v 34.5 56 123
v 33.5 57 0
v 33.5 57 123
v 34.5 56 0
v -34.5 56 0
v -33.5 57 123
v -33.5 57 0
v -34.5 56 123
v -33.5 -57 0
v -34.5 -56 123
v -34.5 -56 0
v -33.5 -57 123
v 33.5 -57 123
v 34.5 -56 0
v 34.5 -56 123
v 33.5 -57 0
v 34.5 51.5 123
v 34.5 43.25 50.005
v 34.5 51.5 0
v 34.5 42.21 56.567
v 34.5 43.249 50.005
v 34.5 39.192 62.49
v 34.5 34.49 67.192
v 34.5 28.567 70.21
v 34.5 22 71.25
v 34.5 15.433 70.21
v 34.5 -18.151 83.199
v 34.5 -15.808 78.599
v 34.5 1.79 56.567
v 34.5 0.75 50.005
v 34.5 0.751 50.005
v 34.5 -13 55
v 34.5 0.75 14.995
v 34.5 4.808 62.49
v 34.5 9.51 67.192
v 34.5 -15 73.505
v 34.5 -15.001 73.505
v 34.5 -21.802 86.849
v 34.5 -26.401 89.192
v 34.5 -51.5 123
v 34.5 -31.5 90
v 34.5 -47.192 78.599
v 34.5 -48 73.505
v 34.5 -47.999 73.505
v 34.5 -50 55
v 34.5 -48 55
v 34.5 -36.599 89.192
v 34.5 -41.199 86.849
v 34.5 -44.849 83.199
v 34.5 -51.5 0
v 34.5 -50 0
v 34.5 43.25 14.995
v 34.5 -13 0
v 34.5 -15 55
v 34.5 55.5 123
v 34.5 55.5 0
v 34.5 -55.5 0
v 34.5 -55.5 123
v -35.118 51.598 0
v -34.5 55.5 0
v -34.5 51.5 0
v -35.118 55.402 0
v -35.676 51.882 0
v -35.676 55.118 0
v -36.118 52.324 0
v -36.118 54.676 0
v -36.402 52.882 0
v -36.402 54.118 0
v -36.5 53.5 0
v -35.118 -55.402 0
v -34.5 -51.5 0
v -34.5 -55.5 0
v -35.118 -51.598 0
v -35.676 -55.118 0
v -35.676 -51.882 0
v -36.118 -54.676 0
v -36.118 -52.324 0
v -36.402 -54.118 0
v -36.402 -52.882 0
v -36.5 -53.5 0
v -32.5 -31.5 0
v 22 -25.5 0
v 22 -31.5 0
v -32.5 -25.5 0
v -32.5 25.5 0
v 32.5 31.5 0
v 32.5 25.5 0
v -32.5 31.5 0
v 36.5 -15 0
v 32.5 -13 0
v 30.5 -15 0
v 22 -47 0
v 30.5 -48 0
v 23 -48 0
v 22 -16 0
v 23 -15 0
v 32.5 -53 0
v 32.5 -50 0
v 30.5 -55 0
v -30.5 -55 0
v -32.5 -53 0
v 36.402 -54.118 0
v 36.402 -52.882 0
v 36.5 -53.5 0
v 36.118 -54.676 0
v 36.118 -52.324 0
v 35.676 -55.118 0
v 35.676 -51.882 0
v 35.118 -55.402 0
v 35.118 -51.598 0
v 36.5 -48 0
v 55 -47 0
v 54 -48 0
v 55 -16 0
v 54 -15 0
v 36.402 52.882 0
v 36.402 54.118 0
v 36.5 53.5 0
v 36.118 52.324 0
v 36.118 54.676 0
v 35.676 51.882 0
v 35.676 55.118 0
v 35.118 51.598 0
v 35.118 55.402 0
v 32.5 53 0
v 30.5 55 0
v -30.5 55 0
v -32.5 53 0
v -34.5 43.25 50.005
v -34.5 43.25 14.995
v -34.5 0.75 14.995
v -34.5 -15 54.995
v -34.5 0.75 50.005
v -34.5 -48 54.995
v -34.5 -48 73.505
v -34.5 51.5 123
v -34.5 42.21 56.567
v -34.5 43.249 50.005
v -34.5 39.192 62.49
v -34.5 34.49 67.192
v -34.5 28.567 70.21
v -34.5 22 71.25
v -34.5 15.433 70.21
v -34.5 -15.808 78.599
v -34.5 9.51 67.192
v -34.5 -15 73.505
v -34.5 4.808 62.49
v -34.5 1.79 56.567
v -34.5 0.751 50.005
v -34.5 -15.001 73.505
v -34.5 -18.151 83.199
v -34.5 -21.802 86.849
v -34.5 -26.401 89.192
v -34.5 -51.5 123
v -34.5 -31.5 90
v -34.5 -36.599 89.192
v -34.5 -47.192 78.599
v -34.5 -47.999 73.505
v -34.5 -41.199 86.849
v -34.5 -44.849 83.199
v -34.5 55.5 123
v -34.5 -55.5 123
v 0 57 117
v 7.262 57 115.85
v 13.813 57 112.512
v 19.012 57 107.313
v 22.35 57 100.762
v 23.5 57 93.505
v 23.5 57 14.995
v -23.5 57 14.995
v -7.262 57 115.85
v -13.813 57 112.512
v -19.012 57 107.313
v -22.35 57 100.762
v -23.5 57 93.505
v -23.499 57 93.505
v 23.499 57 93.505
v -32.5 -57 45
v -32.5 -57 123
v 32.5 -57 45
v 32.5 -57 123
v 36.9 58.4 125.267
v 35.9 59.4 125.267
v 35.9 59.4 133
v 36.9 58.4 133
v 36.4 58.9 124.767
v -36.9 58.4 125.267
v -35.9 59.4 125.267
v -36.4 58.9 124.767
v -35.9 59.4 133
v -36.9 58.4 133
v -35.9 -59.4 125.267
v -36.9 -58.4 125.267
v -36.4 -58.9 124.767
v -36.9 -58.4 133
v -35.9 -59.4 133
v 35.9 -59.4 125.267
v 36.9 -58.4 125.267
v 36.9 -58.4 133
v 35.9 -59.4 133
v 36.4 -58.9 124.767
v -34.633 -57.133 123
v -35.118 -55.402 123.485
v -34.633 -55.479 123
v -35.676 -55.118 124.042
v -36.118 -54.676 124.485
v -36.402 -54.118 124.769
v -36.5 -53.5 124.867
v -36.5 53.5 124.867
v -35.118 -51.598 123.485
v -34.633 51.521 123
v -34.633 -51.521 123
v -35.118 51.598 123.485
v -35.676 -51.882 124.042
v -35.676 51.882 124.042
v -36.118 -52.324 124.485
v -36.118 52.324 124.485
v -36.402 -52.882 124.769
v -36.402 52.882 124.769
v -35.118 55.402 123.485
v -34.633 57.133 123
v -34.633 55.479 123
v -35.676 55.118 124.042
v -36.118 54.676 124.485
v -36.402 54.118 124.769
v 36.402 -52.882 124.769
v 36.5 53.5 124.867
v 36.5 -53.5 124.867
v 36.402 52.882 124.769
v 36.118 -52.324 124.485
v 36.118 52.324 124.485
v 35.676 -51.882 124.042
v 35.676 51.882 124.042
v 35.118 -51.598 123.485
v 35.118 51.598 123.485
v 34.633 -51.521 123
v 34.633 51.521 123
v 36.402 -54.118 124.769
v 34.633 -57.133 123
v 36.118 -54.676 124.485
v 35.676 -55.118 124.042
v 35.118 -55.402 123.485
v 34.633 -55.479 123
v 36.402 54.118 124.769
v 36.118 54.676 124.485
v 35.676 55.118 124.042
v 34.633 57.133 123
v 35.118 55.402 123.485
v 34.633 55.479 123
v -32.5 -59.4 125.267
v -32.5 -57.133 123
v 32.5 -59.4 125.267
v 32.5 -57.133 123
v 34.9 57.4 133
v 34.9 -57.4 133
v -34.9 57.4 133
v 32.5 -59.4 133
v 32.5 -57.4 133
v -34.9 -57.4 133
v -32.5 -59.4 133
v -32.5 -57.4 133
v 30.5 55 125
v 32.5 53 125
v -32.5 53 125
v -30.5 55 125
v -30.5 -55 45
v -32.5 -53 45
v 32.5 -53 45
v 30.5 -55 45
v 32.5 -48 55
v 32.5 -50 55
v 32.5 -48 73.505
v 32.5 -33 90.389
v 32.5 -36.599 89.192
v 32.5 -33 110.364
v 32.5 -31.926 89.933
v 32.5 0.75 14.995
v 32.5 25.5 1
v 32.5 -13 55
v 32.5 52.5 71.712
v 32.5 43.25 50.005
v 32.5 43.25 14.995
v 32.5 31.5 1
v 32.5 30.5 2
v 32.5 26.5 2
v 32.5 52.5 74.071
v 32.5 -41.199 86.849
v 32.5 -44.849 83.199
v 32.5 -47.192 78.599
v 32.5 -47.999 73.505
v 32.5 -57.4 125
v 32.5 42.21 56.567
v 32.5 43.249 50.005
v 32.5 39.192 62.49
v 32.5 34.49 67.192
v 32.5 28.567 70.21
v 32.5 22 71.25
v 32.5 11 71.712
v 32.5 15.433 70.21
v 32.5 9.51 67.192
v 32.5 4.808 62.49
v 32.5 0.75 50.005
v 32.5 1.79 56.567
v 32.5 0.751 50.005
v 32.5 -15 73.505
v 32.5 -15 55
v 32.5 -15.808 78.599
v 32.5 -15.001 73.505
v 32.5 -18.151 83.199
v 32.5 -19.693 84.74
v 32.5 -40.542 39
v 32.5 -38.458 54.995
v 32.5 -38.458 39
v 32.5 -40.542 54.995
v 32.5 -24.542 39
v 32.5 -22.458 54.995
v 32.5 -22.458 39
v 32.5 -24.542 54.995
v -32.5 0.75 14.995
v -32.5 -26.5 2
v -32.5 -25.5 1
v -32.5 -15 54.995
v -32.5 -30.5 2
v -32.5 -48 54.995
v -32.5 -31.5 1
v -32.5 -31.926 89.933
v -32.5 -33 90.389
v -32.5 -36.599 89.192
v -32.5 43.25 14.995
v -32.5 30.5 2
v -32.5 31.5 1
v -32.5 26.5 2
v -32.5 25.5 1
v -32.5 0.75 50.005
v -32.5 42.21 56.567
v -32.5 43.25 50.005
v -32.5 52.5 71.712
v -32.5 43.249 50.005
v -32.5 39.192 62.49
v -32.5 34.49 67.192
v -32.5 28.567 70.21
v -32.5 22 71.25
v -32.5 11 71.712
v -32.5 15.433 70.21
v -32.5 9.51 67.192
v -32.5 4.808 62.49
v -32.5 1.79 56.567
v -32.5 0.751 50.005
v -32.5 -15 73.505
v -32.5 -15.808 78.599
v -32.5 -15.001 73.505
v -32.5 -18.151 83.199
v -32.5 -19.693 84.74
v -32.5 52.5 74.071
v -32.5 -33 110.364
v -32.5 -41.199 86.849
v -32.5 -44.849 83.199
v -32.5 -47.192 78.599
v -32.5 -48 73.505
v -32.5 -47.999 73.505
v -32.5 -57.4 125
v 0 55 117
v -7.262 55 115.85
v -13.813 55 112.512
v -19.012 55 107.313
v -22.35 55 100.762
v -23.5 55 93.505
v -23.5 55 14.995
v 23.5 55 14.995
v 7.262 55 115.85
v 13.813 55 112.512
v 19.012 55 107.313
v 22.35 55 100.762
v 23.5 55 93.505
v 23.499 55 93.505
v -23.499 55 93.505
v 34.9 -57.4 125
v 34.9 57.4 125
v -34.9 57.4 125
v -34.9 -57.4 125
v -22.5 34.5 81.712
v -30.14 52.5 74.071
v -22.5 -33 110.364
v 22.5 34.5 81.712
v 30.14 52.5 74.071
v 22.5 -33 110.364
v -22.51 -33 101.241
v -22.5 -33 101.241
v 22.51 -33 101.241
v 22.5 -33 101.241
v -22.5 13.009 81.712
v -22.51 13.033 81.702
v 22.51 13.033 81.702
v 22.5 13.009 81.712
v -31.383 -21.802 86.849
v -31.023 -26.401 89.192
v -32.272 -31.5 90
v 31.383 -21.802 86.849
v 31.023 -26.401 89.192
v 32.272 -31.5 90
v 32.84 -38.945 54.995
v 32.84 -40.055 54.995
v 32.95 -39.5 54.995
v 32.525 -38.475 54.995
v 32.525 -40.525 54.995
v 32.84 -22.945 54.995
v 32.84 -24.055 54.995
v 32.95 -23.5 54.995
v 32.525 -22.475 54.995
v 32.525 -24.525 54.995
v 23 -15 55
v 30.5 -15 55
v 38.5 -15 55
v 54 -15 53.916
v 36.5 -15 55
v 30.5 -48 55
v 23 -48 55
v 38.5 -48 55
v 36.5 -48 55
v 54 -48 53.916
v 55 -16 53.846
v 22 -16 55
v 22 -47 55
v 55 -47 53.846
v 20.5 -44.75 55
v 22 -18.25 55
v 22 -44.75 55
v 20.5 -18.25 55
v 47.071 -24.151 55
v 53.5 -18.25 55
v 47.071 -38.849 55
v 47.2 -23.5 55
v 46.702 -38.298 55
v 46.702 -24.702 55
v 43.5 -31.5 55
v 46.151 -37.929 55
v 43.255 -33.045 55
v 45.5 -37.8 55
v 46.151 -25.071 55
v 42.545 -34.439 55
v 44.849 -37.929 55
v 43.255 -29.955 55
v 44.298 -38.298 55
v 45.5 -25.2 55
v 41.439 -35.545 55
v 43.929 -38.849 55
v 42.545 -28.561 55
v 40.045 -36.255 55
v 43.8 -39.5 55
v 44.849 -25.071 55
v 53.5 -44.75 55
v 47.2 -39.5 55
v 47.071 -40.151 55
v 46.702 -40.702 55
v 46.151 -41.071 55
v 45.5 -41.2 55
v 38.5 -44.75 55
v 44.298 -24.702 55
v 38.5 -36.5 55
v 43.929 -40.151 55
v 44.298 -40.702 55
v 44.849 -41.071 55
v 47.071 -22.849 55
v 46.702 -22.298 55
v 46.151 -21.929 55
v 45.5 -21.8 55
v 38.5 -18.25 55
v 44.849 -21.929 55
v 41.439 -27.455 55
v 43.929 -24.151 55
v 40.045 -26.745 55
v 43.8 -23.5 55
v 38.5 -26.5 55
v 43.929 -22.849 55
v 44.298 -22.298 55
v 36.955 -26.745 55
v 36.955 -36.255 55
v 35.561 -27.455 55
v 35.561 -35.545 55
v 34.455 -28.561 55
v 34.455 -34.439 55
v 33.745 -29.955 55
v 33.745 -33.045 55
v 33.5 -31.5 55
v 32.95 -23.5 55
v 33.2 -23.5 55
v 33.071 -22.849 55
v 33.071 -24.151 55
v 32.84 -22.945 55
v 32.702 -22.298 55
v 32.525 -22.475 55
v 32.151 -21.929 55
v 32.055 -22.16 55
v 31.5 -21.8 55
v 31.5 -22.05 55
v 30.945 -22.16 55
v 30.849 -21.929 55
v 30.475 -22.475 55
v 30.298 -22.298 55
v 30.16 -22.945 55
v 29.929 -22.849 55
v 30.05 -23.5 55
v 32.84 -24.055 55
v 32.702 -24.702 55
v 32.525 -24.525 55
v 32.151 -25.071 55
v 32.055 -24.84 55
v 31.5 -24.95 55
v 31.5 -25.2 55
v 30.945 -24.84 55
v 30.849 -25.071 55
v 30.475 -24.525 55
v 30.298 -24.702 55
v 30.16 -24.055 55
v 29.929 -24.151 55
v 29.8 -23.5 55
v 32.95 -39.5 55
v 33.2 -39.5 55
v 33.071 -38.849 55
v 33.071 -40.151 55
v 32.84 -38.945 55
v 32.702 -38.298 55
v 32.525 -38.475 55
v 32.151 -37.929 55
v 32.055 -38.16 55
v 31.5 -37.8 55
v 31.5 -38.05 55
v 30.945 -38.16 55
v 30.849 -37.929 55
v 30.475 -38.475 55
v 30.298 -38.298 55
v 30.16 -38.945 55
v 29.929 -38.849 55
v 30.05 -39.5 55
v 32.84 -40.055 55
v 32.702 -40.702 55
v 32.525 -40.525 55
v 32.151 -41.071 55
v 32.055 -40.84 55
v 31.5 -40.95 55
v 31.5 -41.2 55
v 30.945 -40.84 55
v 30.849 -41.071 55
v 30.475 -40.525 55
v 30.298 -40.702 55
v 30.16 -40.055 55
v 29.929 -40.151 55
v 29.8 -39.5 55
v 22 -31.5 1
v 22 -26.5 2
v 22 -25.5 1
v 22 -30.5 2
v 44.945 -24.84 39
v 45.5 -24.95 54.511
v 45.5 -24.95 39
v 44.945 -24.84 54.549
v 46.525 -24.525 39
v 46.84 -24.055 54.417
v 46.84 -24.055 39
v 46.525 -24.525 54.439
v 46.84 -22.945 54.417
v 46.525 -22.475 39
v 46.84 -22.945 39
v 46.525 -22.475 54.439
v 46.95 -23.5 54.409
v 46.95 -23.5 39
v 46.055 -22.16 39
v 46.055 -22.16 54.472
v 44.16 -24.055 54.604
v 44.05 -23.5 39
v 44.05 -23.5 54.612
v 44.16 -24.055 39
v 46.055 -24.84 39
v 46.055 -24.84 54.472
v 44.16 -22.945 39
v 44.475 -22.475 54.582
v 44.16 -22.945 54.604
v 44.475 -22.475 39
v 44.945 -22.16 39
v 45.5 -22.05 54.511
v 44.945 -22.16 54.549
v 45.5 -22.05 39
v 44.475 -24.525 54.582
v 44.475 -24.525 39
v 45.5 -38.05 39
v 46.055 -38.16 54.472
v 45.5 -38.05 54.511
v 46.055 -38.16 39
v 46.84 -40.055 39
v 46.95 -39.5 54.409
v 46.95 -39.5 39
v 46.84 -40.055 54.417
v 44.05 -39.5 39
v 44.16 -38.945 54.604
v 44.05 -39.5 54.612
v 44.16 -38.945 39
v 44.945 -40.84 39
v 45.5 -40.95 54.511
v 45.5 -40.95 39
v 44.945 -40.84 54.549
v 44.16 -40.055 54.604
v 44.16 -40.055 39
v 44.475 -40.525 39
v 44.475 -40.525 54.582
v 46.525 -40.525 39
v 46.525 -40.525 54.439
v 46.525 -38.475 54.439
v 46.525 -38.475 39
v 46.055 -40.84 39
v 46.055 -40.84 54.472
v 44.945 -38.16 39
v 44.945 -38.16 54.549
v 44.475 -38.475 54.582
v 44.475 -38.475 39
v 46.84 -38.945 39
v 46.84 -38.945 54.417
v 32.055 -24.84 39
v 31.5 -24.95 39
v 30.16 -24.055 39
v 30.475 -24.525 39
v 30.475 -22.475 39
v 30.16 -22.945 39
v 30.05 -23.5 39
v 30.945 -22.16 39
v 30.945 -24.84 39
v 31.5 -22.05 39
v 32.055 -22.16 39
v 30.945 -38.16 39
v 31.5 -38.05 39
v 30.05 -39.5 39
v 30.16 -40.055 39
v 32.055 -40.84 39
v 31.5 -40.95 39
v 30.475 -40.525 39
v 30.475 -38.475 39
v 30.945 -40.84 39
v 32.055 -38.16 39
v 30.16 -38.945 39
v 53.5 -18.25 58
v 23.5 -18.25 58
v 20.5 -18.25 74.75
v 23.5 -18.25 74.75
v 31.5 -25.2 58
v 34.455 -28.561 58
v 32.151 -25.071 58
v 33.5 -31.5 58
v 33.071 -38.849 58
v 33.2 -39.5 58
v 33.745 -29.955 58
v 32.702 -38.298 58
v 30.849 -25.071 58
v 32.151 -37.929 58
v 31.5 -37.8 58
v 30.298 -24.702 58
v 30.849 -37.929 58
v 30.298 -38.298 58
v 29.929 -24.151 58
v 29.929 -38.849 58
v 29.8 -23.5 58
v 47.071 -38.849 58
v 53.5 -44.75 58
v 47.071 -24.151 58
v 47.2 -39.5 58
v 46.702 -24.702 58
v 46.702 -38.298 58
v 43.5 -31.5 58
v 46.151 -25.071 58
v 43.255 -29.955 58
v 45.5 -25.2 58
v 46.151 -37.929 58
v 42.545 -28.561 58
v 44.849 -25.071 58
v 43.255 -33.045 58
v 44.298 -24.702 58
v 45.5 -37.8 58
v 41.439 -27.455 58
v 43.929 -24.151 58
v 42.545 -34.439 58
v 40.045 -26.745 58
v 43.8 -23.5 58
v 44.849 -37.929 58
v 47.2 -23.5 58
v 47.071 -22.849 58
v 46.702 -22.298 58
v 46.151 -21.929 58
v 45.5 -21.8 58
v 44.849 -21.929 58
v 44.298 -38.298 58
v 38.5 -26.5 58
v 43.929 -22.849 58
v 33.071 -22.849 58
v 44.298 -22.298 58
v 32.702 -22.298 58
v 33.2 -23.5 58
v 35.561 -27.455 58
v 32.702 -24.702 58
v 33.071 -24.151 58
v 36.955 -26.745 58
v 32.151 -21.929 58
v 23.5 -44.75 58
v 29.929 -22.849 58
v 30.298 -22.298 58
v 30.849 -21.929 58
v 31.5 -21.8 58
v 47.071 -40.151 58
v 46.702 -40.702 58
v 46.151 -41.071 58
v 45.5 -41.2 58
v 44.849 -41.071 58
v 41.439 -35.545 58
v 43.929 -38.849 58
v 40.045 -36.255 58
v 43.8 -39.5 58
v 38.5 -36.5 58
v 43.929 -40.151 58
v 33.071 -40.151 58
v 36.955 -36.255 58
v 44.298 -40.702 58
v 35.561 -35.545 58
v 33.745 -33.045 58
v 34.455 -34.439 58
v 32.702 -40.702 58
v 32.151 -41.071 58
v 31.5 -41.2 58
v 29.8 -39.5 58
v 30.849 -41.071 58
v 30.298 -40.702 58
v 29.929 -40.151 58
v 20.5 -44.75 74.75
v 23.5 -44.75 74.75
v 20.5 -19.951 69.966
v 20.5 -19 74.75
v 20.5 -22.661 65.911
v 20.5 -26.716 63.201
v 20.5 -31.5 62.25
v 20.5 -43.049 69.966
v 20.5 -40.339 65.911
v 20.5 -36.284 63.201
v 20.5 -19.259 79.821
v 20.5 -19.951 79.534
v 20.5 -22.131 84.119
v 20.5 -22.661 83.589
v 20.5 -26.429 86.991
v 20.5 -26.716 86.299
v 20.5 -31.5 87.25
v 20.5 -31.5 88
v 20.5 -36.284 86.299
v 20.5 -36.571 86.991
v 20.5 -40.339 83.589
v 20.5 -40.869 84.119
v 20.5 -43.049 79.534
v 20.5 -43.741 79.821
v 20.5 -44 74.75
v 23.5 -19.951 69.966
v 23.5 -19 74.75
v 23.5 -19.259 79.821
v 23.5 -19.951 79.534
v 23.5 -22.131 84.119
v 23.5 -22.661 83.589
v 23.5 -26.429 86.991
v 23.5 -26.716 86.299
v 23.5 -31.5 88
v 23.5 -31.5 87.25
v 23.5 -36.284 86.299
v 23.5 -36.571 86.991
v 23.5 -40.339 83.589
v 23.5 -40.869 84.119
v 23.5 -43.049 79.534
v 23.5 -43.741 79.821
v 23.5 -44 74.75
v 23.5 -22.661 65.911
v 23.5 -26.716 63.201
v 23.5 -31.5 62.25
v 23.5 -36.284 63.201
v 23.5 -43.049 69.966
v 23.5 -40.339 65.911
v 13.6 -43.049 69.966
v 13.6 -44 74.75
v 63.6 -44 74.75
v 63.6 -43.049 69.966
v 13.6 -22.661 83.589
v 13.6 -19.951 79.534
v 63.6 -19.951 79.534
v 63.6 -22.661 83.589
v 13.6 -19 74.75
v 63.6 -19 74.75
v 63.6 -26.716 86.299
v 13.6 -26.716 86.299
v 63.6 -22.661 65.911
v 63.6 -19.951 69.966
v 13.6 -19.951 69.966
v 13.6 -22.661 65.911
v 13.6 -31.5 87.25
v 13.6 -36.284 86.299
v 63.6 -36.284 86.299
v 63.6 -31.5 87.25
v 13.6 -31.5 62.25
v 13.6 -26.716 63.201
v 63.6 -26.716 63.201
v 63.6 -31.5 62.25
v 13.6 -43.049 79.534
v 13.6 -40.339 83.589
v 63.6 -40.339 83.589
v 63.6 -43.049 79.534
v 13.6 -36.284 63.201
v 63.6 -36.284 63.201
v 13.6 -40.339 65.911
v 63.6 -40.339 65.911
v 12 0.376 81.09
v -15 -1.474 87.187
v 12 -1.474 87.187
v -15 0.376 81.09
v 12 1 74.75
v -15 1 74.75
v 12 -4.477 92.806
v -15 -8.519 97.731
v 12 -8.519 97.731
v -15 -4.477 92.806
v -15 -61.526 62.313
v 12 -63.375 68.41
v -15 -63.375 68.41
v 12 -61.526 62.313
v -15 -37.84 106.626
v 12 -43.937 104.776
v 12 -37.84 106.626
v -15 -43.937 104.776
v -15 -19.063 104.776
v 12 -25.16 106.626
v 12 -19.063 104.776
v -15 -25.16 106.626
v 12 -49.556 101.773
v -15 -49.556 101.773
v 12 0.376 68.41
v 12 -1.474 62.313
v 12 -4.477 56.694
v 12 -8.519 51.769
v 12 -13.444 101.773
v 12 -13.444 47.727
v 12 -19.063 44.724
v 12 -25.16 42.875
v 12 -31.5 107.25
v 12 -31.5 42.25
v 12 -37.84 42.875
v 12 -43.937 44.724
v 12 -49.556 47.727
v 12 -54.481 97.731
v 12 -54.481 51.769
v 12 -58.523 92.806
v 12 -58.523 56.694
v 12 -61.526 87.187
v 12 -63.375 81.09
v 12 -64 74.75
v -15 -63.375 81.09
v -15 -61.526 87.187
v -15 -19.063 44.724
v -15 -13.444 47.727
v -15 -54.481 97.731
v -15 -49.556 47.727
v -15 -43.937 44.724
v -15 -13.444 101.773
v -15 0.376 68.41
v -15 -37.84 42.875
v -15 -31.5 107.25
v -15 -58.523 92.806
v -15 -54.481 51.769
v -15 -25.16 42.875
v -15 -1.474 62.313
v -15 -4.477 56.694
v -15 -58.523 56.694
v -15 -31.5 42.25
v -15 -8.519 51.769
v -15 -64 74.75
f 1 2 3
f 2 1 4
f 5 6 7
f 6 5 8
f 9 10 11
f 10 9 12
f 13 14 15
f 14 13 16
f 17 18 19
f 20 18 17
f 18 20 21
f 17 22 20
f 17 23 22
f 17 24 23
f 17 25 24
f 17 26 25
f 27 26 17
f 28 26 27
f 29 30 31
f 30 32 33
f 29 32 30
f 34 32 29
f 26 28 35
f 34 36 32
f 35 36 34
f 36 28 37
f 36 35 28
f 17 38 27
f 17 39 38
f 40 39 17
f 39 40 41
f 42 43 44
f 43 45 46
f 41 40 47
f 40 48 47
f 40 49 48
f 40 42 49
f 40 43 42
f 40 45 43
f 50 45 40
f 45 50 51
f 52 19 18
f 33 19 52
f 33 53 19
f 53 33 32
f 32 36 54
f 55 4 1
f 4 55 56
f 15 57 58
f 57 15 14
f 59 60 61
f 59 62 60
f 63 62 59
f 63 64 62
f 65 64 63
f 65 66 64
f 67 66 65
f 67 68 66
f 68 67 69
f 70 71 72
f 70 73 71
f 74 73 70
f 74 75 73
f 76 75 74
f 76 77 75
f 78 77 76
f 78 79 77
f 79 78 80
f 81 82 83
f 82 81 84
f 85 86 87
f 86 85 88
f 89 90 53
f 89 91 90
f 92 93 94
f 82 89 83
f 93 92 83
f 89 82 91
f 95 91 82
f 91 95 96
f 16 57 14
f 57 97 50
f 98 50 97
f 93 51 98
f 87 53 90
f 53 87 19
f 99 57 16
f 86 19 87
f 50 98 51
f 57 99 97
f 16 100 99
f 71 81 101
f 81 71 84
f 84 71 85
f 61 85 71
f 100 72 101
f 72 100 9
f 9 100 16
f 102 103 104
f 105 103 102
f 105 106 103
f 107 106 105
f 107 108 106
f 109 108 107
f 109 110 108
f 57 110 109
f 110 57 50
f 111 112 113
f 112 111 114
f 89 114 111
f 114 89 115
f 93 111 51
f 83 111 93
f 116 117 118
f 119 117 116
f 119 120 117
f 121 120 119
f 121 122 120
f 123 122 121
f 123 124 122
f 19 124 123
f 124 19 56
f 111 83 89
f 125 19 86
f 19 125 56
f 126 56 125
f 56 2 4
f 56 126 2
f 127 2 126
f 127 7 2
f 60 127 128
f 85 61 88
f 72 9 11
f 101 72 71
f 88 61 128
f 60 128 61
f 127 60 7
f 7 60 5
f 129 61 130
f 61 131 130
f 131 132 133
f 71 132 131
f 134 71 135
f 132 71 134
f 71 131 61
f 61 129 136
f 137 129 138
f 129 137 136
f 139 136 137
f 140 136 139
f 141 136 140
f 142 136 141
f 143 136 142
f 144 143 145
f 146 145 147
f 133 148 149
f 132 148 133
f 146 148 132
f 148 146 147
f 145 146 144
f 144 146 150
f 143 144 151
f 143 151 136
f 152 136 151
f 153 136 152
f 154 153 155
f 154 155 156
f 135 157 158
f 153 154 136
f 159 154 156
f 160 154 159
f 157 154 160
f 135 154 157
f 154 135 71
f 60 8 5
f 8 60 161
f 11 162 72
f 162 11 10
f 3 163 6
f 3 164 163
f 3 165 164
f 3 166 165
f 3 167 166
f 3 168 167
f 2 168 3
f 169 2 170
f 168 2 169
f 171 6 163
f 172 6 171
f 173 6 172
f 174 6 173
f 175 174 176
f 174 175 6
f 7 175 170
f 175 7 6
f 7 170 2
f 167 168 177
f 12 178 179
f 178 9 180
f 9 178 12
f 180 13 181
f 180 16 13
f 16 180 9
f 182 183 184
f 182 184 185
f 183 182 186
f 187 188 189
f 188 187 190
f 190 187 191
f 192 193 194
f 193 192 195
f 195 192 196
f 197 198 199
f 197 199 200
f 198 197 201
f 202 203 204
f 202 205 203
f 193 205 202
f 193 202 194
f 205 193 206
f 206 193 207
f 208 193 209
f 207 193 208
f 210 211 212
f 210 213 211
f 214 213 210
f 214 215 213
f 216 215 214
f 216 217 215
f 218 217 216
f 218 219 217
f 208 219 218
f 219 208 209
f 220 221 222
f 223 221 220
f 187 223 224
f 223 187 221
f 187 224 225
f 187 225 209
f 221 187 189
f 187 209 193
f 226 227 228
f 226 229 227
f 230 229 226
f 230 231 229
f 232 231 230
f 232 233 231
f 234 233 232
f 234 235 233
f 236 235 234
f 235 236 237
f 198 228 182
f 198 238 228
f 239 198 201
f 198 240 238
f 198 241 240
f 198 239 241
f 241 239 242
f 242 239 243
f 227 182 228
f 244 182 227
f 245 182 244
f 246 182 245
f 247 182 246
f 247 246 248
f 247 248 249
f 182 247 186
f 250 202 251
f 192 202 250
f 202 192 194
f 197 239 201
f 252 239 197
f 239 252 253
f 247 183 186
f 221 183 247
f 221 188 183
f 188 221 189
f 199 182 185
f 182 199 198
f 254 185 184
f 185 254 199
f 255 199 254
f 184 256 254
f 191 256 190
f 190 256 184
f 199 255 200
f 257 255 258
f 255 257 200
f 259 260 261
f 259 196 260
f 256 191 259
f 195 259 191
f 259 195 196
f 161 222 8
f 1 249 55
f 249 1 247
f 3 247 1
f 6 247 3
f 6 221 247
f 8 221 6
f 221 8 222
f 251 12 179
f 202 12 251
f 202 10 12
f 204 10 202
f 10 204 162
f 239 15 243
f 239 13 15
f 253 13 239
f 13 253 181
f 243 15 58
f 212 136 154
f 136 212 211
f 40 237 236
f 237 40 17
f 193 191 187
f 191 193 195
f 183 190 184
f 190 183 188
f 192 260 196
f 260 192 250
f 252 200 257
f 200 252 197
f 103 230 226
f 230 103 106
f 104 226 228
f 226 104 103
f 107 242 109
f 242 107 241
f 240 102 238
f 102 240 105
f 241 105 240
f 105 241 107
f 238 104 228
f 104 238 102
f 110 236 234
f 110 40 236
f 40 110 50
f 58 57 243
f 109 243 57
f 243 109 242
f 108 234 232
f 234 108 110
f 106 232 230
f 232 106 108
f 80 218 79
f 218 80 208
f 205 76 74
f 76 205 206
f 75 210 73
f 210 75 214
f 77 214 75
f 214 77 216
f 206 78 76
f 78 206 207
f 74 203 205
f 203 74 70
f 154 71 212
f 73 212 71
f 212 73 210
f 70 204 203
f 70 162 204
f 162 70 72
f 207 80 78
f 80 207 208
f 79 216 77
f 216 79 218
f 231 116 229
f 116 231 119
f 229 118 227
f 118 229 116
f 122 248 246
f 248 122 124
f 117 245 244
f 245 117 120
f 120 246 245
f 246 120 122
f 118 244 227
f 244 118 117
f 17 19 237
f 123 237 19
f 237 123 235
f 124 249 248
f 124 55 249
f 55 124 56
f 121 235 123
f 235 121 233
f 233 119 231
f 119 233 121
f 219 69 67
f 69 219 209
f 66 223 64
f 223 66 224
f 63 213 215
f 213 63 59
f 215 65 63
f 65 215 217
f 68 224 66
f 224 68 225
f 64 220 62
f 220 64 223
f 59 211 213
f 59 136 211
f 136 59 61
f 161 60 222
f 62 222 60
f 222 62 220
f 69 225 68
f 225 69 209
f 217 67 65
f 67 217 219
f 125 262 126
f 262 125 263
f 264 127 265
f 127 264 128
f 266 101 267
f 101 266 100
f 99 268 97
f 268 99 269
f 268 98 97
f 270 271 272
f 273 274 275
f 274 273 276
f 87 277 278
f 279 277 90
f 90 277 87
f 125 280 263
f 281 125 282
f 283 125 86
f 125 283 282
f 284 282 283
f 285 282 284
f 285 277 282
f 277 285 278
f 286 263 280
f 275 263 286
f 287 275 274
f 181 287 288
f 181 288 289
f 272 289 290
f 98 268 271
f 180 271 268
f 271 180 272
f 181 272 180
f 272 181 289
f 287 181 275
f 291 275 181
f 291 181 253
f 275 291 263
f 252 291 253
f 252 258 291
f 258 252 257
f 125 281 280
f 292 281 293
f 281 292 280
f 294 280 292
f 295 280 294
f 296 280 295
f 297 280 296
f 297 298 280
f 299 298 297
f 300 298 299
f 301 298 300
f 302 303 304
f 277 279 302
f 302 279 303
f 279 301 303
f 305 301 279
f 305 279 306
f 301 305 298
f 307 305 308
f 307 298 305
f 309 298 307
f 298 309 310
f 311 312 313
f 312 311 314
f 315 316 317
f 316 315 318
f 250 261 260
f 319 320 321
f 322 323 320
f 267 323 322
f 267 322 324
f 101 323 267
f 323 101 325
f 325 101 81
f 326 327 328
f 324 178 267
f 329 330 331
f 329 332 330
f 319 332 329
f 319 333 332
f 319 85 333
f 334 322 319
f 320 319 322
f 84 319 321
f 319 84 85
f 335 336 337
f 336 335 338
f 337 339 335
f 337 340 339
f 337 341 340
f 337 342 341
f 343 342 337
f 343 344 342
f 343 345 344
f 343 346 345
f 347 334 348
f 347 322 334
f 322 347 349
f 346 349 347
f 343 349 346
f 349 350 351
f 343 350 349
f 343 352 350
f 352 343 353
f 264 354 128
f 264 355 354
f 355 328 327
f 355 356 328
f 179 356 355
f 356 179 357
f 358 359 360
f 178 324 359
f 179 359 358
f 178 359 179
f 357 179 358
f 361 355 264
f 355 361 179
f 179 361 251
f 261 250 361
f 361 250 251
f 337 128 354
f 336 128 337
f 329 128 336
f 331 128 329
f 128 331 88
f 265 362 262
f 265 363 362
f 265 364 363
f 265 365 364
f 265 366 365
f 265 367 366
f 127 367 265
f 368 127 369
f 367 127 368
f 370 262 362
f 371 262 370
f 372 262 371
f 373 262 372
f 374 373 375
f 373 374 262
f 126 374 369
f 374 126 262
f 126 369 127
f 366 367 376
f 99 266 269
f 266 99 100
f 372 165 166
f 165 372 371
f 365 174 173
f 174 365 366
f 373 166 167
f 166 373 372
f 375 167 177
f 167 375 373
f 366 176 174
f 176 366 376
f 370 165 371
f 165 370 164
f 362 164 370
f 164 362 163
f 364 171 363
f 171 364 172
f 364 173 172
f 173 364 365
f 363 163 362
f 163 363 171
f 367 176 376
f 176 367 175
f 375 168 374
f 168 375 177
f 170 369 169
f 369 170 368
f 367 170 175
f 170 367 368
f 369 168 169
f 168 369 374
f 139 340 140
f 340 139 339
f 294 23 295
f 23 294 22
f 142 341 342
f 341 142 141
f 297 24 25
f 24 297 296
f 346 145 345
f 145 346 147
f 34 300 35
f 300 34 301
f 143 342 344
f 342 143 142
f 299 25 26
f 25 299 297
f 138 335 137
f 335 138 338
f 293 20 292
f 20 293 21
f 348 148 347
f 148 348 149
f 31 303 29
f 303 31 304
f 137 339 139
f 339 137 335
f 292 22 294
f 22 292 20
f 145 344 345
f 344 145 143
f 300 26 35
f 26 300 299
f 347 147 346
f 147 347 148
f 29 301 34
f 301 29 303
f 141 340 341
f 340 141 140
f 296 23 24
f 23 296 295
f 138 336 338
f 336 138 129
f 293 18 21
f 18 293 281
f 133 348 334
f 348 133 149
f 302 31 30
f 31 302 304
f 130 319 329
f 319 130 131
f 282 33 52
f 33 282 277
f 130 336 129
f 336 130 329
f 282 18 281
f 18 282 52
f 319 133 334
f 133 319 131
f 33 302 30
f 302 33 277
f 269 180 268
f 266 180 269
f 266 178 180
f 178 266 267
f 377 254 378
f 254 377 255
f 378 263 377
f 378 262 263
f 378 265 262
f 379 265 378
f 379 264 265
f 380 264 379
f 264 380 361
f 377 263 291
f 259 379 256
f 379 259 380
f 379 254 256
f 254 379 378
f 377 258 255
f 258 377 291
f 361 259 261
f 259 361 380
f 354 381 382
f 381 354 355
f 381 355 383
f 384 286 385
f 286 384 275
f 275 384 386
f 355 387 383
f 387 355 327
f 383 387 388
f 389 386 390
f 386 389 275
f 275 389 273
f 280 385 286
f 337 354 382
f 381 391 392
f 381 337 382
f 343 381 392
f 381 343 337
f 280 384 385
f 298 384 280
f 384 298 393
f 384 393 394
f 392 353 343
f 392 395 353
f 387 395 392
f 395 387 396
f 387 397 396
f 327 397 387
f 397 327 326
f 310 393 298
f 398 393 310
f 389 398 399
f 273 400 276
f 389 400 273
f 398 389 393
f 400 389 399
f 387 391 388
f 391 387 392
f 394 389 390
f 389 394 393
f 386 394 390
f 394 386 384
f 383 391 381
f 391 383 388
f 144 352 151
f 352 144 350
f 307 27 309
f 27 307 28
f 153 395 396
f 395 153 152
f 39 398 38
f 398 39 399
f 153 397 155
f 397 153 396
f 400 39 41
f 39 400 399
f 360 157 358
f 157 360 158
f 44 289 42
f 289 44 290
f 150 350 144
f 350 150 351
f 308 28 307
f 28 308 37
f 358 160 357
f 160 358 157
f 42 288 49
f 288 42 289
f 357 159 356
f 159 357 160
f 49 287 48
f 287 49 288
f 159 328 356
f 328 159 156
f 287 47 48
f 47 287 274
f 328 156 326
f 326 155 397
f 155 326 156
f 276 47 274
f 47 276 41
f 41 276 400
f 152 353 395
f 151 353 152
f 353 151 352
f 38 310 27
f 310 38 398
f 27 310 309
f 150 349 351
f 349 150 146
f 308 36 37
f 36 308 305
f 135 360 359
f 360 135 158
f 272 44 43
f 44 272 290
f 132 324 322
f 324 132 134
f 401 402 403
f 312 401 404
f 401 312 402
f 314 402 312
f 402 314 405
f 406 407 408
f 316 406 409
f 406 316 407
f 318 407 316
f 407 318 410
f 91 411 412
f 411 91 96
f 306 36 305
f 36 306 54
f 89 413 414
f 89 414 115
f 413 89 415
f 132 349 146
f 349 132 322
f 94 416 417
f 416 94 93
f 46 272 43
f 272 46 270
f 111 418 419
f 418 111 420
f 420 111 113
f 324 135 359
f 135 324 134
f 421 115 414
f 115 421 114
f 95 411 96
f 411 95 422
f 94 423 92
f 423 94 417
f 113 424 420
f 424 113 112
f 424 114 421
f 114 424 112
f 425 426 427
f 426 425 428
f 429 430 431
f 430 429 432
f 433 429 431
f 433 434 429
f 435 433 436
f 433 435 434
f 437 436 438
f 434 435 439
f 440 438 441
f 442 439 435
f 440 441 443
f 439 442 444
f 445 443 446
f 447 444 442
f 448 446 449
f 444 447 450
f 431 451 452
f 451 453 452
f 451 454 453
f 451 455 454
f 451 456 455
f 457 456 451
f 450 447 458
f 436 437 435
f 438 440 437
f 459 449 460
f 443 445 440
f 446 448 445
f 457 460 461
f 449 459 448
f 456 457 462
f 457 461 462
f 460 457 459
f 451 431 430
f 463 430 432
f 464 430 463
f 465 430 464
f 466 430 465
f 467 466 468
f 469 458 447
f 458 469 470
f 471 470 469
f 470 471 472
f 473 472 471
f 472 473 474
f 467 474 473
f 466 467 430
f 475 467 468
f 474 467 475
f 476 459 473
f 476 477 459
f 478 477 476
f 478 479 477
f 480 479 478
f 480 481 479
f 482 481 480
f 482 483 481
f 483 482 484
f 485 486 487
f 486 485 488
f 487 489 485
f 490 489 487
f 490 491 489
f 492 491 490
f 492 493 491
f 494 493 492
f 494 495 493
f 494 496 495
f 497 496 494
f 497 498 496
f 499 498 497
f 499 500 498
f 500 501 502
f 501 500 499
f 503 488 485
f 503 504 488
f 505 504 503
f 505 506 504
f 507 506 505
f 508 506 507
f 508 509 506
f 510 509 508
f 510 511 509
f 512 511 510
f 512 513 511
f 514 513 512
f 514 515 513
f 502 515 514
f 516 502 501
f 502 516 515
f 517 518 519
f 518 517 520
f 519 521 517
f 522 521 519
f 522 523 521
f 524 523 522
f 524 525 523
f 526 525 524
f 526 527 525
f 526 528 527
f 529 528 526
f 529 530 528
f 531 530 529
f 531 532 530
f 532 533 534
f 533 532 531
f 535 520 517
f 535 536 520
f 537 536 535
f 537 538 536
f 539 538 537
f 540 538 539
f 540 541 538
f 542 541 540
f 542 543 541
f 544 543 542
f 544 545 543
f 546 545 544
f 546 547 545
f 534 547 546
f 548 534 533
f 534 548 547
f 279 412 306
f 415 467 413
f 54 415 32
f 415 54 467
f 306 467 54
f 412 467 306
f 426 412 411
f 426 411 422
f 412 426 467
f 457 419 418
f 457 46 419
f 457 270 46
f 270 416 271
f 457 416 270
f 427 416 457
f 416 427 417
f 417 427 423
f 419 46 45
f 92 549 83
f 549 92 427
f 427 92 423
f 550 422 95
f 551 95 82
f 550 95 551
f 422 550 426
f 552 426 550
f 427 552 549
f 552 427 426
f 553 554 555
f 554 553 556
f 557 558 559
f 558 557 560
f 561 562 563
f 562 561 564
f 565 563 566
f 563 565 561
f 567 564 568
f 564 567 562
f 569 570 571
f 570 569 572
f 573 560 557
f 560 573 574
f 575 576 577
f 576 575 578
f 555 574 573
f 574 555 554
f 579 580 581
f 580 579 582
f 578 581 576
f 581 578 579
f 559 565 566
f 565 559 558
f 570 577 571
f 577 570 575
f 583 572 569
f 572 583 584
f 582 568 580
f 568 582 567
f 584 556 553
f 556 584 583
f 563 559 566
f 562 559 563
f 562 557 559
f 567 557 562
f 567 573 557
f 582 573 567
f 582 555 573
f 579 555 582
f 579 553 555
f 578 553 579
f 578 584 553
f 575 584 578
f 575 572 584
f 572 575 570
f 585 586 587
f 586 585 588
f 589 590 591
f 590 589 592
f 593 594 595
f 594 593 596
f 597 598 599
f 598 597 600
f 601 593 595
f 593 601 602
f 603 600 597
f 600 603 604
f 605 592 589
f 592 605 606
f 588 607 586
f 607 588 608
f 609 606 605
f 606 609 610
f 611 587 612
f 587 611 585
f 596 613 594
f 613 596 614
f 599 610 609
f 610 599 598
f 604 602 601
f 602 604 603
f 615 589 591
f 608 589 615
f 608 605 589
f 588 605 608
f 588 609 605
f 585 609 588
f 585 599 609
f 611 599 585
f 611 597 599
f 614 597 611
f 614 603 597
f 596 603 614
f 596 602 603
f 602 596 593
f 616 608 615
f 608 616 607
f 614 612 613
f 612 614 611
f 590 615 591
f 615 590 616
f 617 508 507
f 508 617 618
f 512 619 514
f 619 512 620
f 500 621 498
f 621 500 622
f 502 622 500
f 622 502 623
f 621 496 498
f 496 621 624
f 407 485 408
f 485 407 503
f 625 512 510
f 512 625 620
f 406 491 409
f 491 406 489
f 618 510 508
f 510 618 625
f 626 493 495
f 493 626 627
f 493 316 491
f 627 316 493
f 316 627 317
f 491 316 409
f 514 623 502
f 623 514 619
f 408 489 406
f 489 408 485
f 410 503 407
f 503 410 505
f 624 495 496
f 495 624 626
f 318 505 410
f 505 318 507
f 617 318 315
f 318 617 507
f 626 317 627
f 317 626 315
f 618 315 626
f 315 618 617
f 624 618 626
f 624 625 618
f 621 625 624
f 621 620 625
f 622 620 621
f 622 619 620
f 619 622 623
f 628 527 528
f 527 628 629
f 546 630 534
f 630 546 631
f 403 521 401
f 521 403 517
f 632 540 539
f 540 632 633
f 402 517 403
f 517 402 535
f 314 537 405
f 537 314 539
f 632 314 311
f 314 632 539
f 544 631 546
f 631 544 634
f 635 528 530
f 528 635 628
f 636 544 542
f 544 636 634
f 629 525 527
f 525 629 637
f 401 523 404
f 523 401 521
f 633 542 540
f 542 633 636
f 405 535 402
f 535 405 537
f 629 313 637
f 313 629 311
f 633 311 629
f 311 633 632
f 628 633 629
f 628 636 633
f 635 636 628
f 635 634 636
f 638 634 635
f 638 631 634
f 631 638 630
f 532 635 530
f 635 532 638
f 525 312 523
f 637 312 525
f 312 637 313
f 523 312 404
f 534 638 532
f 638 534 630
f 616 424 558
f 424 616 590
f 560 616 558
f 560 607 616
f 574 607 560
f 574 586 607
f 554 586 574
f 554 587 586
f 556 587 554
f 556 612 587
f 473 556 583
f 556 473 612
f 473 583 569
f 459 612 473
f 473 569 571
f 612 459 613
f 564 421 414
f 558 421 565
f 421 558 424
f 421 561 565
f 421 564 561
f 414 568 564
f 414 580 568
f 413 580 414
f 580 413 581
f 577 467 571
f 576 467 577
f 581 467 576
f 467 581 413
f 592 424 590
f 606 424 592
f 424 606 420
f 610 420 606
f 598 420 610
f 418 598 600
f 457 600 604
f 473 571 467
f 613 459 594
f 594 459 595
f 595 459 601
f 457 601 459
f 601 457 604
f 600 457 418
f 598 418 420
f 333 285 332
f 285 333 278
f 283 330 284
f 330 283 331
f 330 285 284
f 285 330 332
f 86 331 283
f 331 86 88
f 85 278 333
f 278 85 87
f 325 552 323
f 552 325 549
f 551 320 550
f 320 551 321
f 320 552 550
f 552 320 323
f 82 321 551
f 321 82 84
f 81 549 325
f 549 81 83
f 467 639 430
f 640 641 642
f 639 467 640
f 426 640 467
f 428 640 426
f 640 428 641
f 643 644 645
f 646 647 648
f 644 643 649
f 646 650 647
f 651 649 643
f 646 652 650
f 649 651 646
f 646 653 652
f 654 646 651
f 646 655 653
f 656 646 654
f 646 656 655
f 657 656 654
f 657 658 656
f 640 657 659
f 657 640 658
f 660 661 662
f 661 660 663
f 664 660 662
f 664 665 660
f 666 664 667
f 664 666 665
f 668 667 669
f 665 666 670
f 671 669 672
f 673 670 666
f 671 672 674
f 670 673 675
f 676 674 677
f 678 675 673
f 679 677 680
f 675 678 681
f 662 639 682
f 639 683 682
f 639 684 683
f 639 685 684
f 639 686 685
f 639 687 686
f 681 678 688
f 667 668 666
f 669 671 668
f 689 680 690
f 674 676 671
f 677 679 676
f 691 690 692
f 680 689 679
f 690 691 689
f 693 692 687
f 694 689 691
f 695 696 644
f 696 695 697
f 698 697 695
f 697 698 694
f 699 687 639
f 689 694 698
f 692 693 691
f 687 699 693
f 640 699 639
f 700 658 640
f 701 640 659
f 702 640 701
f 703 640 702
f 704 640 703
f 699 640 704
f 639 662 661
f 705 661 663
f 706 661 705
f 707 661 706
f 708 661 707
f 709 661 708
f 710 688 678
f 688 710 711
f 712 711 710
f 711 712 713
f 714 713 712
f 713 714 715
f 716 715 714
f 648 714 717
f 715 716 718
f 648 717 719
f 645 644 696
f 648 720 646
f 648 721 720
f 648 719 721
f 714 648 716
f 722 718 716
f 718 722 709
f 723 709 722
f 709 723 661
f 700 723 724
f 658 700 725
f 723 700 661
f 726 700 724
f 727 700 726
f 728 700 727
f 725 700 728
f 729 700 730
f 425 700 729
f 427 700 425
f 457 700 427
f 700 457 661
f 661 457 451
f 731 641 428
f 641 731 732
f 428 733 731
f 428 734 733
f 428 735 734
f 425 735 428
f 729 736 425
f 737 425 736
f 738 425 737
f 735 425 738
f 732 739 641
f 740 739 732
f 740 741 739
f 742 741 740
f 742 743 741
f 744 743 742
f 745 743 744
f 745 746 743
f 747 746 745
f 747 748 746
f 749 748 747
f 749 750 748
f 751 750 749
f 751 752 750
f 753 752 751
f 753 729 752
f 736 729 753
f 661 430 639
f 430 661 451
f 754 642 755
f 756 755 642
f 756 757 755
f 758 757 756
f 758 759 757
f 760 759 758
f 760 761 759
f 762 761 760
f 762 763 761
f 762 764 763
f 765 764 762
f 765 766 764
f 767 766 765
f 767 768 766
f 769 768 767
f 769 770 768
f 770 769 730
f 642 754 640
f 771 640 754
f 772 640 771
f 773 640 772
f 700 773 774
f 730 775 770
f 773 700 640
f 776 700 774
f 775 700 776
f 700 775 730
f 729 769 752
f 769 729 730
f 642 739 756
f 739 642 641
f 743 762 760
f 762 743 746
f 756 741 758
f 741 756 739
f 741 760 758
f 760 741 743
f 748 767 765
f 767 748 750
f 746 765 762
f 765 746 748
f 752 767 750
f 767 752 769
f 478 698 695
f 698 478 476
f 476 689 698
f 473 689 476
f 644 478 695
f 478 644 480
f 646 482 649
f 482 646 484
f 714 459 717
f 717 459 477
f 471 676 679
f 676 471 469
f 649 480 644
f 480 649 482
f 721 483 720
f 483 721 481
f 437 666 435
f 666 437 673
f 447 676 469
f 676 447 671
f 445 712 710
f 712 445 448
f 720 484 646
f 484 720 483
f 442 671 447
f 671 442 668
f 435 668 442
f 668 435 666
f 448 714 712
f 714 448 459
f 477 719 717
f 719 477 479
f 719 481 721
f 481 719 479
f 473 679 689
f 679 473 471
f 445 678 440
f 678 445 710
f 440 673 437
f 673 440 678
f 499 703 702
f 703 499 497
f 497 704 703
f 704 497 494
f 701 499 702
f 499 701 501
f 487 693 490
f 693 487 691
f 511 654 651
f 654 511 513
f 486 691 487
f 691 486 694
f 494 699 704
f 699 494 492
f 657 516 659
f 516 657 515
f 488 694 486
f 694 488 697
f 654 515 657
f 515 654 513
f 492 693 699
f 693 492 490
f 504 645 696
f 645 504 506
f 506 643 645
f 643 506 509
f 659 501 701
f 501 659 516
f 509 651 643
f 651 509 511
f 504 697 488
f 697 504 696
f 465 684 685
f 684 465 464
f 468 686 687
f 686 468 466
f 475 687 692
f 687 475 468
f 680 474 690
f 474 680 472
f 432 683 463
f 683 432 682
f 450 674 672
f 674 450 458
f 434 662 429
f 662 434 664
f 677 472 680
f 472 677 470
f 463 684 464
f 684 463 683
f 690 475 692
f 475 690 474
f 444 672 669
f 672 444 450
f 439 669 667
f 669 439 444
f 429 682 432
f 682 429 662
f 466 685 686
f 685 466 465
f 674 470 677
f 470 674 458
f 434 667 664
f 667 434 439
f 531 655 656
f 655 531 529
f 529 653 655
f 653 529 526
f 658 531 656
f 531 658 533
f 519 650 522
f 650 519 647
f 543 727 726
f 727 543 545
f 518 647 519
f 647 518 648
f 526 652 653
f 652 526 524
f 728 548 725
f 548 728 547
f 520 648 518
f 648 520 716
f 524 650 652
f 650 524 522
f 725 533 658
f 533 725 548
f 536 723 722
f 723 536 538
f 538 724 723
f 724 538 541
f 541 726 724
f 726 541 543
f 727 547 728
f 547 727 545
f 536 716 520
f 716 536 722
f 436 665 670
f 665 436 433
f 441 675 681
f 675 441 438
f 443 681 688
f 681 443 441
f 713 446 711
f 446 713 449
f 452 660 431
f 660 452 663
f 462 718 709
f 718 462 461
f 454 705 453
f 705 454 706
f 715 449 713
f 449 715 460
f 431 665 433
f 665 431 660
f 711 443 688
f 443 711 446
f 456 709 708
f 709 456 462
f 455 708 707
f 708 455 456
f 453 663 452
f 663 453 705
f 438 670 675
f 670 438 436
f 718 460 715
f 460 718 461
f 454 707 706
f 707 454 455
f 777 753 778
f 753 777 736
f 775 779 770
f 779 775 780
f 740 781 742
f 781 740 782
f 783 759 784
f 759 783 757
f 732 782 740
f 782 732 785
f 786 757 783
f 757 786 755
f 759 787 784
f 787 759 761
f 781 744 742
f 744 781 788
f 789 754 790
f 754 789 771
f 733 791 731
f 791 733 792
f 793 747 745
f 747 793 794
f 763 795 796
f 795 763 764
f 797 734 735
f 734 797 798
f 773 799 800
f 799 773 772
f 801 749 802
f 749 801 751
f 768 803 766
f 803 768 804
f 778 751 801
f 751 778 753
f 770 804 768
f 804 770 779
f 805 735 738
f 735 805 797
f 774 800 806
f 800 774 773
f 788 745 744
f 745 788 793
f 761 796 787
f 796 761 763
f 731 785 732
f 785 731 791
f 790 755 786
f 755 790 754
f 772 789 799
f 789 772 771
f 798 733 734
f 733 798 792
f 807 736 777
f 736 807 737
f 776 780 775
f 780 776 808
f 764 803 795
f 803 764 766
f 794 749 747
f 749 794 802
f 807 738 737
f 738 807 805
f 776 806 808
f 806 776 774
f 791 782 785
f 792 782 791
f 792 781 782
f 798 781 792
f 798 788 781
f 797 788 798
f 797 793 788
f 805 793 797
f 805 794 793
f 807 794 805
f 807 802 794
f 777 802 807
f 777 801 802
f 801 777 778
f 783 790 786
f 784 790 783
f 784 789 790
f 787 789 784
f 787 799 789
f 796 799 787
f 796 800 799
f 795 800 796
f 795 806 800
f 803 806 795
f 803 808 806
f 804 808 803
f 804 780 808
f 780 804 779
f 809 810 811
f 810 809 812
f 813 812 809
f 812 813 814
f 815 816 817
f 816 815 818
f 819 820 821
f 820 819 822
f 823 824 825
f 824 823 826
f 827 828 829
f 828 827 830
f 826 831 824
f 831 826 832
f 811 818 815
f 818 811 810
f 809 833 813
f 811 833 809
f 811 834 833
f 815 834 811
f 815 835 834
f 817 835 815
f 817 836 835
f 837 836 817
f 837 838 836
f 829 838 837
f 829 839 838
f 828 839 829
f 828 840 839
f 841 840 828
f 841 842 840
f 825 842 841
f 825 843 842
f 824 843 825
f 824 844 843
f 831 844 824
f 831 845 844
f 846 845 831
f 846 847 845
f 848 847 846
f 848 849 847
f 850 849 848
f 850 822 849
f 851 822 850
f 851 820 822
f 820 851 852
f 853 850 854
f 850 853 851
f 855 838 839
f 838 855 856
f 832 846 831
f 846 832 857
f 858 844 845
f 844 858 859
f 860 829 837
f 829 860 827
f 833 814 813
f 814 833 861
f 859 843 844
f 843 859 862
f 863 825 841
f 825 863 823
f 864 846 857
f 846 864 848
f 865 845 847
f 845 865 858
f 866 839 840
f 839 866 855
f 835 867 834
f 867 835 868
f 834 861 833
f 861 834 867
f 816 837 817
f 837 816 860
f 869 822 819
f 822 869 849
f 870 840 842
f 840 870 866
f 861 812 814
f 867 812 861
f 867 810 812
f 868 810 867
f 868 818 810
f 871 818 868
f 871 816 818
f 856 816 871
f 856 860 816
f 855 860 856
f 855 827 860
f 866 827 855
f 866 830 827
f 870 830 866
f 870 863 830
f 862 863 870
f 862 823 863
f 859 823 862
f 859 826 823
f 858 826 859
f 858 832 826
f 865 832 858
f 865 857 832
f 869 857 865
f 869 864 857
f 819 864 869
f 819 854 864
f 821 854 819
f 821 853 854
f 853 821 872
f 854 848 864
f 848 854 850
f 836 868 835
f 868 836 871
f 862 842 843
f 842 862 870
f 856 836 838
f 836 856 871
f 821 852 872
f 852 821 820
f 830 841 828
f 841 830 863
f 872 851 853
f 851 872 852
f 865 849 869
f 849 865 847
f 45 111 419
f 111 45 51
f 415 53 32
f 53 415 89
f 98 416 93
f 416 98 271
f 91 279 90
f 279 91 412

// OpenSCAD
// file: base_objects.scad
/*

  base_objects.scad
  
  (c) olikraus@gmail.com

  This work is licensed under the Creative Commons Attribution-NonCommercial-ShareAlike 4.0 International License.
  To view a copy of this license, visit http://creativecommons.org/licenses/by-nc-sa/4.0/.

  SquareFrustum(bottom=[10,10], top=[0,0], h=10)
  CenterCube(dim, ChamferBody = 0, ChamferBottom=0, ChamferTop=0)
  Archoid(r=10, b=20, l=30)

*/


/*
  SquareFrustum(bottom=[10,10], top=[0,0], h=10)
  https://en.wikipedia.org/wiki/Frustum
  
  Args:
    buttom: Bottom square (width, height)
    top: Top square (width, height)
    h: Distance of the top square to z=0 plane
    ChamferBody: The amount to chamfer for edges parallel to z axis
  Notes:
    The bottom square is placed in the z=0 plane.
    The squares are centered around z axis.
  Example:
    SquareFrustum([20,20], [10,4], h=20);
    

    // create a rectangle bowl
    // same example as for CenterCube
    // SquareFrustum might be more flexible because it is not
    // restricted to the 45 degree chamfer
    
    union() {
      wallthickness=2;
      xwidth = 10;
      ywidth = 20;
      height = 5;
      translate([0,0,wallthickness])
      difference() {
        CenterCube([xwidth+2*wallthickness,ywidth+2*wallthickness,5-wallthickness]);
        CenterCube([xwidth,ywidth,5-wallthickness+0.01]);
      }    
      SquareFrustum(
        bottom=[xwidth,ywidth], 
        top=[xwidth+2*wallthickness,ywidth+2*wallthickness], 
        h=wallthickness);
    }
    
*/
module SquareFrustum_old(bottom=[10,10], top=[0,0], h=10) {
  lx = bottom[0];
  ly = bottom[1];
  ux = top[0];
  uy = top[1];
  p = [
    [ -lx/2, -ly/2,  0 ],  //0
    [ lx/2,  -ly/2,  0 ],  //1
    [ lx/2,  ly/2,  0 ],  //2
    [ -lx/2,  ly/2,  0 ],  //3
    [ -ux/2, -uy/2,  h ],  //4
    [ ux/2,  -uy/2,  h ],  //5
    [ ux/2,  uy/2,  h ],  //6
    [ -ux/2,  uy/2,  h ]]; //7
    
  f = [
    [0,1,2,3],  // bottom
    [4,5,1,0],  // front
    [7,6,5,4],  // top
    [5,6,2,1],  // right
    [6,7,3,2],  // back
    [7,4,0,3]]; // left
  polyhedron( p, f );
}

module SquareFrustum(bottom=[10,10], top=[0,0], h=10, ChamferBody=0) {
  c = ChamferBody/2;
  lx = bottom[0]-2*c;
  ly = bottom[1]-2*c;
  ux = top[0]-2*c;
  uy = top[1]-2*c;
  p = [
    [ -lx/2-c, -ly/2+c,  0 ],  //0 / 0, 0
    [ -lx/2+c, -ly/2-c,  0 ],  //0 / 1, 1
  
    [ lx/2-c,  -ly/2-c,  0 ],  //1 / 0, 2
    [ lx/2+c,  -ly/2+c,  0 ],  //1 / 1, 3
  
    [ lx/2+c,  ly/2-c,  0 ],  //2 / 0, 4
    [ lx/2-c,  ly/2+c,  0 ],  //2 / 1, 5
  
    [ -lx/2+c,  ly/2+c,  0 ],  //3 / 0, 6
    [ -lx/2-c,  ly/2-c,  0 ],  //3 / 1, 7
  
    [ -ux/2-c, -uy/2+c,  h ],  //4 / 0, 8
    [ -ux/2+c, -uy/2-c,  h ],  //4 / 1, 9
  
    [ ux/2-c,  -uy/2-c,  h ],  //5 / 0, 10
    [ ux/2+c,  -uy/2+c,  h ],  //5 / 1, 11
 
    [ ux/2+c,  uy/2-c,  h ],  //6 / 0, 12
    [ ux/2-c,  uy/2+c,  h ],  //6 / 1, 13
    
    [ -ux/2+c,  uy/2+c,  h ], //7 / 0, 14
    [ -ux/2-c,  uy/2-c,  h ]]; //7 / 1, 15
    
  f = [
    [0,1,2,3,4,5,6,7],  // bottom
    [8,9,1,0], // front left
    [9,10,2,1],  // front 
    [10,11,3,2], // front right
    [15,14,13,12,11,10,9,8],  // top
    [11,12,4,3],  // right
    [12,13,5,4],  // back right
    [13,14,6,5],  // back
    [14,15,7,6], // back left
    [15,8,0,7]]; // left
  polyhedron( p, f );
}


/*
  ChamferZCube(w=1,h=10)

  A cube, which can be used to chamfer along the z axis

  Args:
    w: The width of the cube is sqrt(2)*w
    h: Height of the cube
    d: The cube has a descent below z=0 plane and an ascent beyond h by this value
  Notes:
    The cube is centered around z-axsis and placed on z=0 plane.

*/
module ChamferZCube(w=1,h=10, d=0) {
  translate([0,0,h/2])
  rotate([0,0,45])
  cube([sqrt(2)*w,sqrt(2)*w,h+2*d], center=true);
}

module ChamferXCube(w=1,h=10, d=0) {
  rotate([45,0,0])
  cube([h+2*d,sqrt(2)*w,sqrt(2)*w], center=true);
}

module ChamferYCube(w=1,h=10, d=0) {
  rotate([0,45,0])
  cube([sqrt(2)*w,h+2*d,sqrt(2)*w], center=true);
}

/*
  CenterCube(dim, ChamferBody = 0, ChamferBottom=0, ChamferTop=0)

  A cube which is centered along z axis but is placed on z=0 plane
  Optionally allows chamfer along z axis.

  Args:
    dim: Same as for cube(dim)
    ChamferBody: The amount to chamfer for edges parallel to z axis
    ChamferBottom: The amount to chamfer for edges in z=0 plane
    ChamferTop: The amount to chamfer for edges in z=dim[2] plane
  Example:
    CenterCube([10, 20, 5]);

    // create a rectangle bowl
    // thanks to chamfer no support is required with 3d print
    difference() {  
      wallthickness=2;
      xwidth = 10;
      ywidth = 20;
      height = 5;
      CenterCube( 
        [xwidth+2*wallthickness, ywidth+2*wallthickness, height], 
        ChamferBottom = wallthickness);
      translate([0,0,wallthickness])
      CenterCube([xwidth,ywidth,height]);
    }

*/

module CenterCube(dim, ChamferBody = 0, ChamferBottom=0, ChamferTop=0) {
  difference() {
    translate([0,0,dim[2]/2])
    cube(dim, center=true);

    if ( ChamferBody > 0 ) {
      translate([dim[0]/2,dim[1]/2,0])
      ChamferZCube(w=ChamferBody,h=dim[2],d=0.01);
      
      translate([-dim[0]/2,dim[1]/2,0])
      ChamferZCube(w=ChamferBody,h=dim[2],d=0.01);

      translate([-dim[0]/2,-dim[1]/2,0])
      ChamferZCube(w=ChamferBody,h=dim[2],d=0.01);

      translate([dim[0]/2,-dim[1]/2,0])
      ChamferZCube(w=ChamferBody,h=dim[2],d=0.01);
    }
    
    if ( ChamferBottom > 0 )
    {
      translate([-dim[0]/2,0,0])
      ChamferYCube(w=ChamferBottom,h=dim[1],d=0.01);

      translate([dim[0]/2,0,0])
      ChamferYCube(w=ChamferBottom,h=dim[1],d=0.01);

      translate([0,-dim[1]/2,0])
      ChamferXCube(w=ChamferBottom,h=dim[0],d=0.01);

      translate([0,dim[1]/2,0])
      ChamferXCube(w=ChamferBottom,h=dim[0],d=0.01);
    }
    
    if ( ChamferTop > 0 )
    {
      translate([-dim[0]/2,0,dim[2]])
      ChamferYCube(w=ChamferTop,h=dim[1],d=0.01);

      translate([dim[0]/2,0,dim[2]])
      ChamferYCube(w=ChamferTop,h=dim[1],d=0.01);

      translate([0,-dim[1]/2,dim[2]])
      ChamferXCube(w=ChamferTop,h=dim[0],d=0.01);

      translate([0,dim[1]/2,dim[2]])
      ChamferXCube(w=ChamferTop,h=dim[0],d=0.01);
    }
    
  }
}

/*
  Archoid(r=10, b=20, l=30)

  A chest like element with a half cylinder on the top
  and a box as a base.
  If used with difference, the result is a archway.

  Args:
    r: Radius of the half-cylinder
    b: height of the base block
    l: length of the chest in x direction.
    $fn: resolution of the half cylinder
  Notes:
    The width of the chest is 2*r, the height is b+r.
    Archoid(r=10, b=20, l=30, $fn=4) becomes a house.

*/
module Archoid(r=10, b=20, l=30) {
  union() {
    translate([0,0,b])
    difference() {
      rotate([0,90,0])
      cylinder(r=r,h=l,center=true);
      translate([0,0,-r])
      cube([2*l,2*l,2*r], center=true);
    }
    translate([0,0,b/2])
    cube([l,2*r,b+0.01], center=true);
  }
}
// main file
/*

  ccm_eject.scad
  
  (c) olikraus@gmail.com

  This work is licensed under the Creative Commons Attribution-NonCommercial-ShareAlike 4.0 International License.
  To view a copy of this license, visit http://creativecommons.org/licenses/by-nc-sa/4.0/.


  Problems 7 Mar 2021
  - Wheel is too high   --> fixed by 1 mm
  - Card gap is too small --> fixed by 1 mm
  - Both arcs are brocken --> fixed with some additional edge corner
  - motor holder block mount screw diameter too small --> fixed by 0.1mm
  - Reduced height of the motor holder (for faster printing)  --> done
  - Leave gap at the lower end of the rail --> done
  14 Mar 2021
  - Both arcs are still brocken --> reduced edge corner (because of sorter rail), added outer support
  
  21 Mar 2021
  - Bugfix: Added pile_gap --> done
  - Added slope to motor mount block --> done
  
   22 Mar 2021
  - Motor must be higher --> 10m --> done
  - lower the support towards sorter house --> done

   24 Mar 2021
   - Increased eject house height to 125 (130 with pile holder)
   
   5 Apr 2021
   - The eject house should be longer, so that the
     wheel is more at the upper end of the cards
     --> Done

   4 Jul 2021
   - Increase slope from 22 to 23 --> Done
   - Extend the eject hourse from 14 to 19, so that
     the wheel is even more at the end of the cards --> DONE


*/


include <card_compare_machine.scad>;

eject_house(true);
